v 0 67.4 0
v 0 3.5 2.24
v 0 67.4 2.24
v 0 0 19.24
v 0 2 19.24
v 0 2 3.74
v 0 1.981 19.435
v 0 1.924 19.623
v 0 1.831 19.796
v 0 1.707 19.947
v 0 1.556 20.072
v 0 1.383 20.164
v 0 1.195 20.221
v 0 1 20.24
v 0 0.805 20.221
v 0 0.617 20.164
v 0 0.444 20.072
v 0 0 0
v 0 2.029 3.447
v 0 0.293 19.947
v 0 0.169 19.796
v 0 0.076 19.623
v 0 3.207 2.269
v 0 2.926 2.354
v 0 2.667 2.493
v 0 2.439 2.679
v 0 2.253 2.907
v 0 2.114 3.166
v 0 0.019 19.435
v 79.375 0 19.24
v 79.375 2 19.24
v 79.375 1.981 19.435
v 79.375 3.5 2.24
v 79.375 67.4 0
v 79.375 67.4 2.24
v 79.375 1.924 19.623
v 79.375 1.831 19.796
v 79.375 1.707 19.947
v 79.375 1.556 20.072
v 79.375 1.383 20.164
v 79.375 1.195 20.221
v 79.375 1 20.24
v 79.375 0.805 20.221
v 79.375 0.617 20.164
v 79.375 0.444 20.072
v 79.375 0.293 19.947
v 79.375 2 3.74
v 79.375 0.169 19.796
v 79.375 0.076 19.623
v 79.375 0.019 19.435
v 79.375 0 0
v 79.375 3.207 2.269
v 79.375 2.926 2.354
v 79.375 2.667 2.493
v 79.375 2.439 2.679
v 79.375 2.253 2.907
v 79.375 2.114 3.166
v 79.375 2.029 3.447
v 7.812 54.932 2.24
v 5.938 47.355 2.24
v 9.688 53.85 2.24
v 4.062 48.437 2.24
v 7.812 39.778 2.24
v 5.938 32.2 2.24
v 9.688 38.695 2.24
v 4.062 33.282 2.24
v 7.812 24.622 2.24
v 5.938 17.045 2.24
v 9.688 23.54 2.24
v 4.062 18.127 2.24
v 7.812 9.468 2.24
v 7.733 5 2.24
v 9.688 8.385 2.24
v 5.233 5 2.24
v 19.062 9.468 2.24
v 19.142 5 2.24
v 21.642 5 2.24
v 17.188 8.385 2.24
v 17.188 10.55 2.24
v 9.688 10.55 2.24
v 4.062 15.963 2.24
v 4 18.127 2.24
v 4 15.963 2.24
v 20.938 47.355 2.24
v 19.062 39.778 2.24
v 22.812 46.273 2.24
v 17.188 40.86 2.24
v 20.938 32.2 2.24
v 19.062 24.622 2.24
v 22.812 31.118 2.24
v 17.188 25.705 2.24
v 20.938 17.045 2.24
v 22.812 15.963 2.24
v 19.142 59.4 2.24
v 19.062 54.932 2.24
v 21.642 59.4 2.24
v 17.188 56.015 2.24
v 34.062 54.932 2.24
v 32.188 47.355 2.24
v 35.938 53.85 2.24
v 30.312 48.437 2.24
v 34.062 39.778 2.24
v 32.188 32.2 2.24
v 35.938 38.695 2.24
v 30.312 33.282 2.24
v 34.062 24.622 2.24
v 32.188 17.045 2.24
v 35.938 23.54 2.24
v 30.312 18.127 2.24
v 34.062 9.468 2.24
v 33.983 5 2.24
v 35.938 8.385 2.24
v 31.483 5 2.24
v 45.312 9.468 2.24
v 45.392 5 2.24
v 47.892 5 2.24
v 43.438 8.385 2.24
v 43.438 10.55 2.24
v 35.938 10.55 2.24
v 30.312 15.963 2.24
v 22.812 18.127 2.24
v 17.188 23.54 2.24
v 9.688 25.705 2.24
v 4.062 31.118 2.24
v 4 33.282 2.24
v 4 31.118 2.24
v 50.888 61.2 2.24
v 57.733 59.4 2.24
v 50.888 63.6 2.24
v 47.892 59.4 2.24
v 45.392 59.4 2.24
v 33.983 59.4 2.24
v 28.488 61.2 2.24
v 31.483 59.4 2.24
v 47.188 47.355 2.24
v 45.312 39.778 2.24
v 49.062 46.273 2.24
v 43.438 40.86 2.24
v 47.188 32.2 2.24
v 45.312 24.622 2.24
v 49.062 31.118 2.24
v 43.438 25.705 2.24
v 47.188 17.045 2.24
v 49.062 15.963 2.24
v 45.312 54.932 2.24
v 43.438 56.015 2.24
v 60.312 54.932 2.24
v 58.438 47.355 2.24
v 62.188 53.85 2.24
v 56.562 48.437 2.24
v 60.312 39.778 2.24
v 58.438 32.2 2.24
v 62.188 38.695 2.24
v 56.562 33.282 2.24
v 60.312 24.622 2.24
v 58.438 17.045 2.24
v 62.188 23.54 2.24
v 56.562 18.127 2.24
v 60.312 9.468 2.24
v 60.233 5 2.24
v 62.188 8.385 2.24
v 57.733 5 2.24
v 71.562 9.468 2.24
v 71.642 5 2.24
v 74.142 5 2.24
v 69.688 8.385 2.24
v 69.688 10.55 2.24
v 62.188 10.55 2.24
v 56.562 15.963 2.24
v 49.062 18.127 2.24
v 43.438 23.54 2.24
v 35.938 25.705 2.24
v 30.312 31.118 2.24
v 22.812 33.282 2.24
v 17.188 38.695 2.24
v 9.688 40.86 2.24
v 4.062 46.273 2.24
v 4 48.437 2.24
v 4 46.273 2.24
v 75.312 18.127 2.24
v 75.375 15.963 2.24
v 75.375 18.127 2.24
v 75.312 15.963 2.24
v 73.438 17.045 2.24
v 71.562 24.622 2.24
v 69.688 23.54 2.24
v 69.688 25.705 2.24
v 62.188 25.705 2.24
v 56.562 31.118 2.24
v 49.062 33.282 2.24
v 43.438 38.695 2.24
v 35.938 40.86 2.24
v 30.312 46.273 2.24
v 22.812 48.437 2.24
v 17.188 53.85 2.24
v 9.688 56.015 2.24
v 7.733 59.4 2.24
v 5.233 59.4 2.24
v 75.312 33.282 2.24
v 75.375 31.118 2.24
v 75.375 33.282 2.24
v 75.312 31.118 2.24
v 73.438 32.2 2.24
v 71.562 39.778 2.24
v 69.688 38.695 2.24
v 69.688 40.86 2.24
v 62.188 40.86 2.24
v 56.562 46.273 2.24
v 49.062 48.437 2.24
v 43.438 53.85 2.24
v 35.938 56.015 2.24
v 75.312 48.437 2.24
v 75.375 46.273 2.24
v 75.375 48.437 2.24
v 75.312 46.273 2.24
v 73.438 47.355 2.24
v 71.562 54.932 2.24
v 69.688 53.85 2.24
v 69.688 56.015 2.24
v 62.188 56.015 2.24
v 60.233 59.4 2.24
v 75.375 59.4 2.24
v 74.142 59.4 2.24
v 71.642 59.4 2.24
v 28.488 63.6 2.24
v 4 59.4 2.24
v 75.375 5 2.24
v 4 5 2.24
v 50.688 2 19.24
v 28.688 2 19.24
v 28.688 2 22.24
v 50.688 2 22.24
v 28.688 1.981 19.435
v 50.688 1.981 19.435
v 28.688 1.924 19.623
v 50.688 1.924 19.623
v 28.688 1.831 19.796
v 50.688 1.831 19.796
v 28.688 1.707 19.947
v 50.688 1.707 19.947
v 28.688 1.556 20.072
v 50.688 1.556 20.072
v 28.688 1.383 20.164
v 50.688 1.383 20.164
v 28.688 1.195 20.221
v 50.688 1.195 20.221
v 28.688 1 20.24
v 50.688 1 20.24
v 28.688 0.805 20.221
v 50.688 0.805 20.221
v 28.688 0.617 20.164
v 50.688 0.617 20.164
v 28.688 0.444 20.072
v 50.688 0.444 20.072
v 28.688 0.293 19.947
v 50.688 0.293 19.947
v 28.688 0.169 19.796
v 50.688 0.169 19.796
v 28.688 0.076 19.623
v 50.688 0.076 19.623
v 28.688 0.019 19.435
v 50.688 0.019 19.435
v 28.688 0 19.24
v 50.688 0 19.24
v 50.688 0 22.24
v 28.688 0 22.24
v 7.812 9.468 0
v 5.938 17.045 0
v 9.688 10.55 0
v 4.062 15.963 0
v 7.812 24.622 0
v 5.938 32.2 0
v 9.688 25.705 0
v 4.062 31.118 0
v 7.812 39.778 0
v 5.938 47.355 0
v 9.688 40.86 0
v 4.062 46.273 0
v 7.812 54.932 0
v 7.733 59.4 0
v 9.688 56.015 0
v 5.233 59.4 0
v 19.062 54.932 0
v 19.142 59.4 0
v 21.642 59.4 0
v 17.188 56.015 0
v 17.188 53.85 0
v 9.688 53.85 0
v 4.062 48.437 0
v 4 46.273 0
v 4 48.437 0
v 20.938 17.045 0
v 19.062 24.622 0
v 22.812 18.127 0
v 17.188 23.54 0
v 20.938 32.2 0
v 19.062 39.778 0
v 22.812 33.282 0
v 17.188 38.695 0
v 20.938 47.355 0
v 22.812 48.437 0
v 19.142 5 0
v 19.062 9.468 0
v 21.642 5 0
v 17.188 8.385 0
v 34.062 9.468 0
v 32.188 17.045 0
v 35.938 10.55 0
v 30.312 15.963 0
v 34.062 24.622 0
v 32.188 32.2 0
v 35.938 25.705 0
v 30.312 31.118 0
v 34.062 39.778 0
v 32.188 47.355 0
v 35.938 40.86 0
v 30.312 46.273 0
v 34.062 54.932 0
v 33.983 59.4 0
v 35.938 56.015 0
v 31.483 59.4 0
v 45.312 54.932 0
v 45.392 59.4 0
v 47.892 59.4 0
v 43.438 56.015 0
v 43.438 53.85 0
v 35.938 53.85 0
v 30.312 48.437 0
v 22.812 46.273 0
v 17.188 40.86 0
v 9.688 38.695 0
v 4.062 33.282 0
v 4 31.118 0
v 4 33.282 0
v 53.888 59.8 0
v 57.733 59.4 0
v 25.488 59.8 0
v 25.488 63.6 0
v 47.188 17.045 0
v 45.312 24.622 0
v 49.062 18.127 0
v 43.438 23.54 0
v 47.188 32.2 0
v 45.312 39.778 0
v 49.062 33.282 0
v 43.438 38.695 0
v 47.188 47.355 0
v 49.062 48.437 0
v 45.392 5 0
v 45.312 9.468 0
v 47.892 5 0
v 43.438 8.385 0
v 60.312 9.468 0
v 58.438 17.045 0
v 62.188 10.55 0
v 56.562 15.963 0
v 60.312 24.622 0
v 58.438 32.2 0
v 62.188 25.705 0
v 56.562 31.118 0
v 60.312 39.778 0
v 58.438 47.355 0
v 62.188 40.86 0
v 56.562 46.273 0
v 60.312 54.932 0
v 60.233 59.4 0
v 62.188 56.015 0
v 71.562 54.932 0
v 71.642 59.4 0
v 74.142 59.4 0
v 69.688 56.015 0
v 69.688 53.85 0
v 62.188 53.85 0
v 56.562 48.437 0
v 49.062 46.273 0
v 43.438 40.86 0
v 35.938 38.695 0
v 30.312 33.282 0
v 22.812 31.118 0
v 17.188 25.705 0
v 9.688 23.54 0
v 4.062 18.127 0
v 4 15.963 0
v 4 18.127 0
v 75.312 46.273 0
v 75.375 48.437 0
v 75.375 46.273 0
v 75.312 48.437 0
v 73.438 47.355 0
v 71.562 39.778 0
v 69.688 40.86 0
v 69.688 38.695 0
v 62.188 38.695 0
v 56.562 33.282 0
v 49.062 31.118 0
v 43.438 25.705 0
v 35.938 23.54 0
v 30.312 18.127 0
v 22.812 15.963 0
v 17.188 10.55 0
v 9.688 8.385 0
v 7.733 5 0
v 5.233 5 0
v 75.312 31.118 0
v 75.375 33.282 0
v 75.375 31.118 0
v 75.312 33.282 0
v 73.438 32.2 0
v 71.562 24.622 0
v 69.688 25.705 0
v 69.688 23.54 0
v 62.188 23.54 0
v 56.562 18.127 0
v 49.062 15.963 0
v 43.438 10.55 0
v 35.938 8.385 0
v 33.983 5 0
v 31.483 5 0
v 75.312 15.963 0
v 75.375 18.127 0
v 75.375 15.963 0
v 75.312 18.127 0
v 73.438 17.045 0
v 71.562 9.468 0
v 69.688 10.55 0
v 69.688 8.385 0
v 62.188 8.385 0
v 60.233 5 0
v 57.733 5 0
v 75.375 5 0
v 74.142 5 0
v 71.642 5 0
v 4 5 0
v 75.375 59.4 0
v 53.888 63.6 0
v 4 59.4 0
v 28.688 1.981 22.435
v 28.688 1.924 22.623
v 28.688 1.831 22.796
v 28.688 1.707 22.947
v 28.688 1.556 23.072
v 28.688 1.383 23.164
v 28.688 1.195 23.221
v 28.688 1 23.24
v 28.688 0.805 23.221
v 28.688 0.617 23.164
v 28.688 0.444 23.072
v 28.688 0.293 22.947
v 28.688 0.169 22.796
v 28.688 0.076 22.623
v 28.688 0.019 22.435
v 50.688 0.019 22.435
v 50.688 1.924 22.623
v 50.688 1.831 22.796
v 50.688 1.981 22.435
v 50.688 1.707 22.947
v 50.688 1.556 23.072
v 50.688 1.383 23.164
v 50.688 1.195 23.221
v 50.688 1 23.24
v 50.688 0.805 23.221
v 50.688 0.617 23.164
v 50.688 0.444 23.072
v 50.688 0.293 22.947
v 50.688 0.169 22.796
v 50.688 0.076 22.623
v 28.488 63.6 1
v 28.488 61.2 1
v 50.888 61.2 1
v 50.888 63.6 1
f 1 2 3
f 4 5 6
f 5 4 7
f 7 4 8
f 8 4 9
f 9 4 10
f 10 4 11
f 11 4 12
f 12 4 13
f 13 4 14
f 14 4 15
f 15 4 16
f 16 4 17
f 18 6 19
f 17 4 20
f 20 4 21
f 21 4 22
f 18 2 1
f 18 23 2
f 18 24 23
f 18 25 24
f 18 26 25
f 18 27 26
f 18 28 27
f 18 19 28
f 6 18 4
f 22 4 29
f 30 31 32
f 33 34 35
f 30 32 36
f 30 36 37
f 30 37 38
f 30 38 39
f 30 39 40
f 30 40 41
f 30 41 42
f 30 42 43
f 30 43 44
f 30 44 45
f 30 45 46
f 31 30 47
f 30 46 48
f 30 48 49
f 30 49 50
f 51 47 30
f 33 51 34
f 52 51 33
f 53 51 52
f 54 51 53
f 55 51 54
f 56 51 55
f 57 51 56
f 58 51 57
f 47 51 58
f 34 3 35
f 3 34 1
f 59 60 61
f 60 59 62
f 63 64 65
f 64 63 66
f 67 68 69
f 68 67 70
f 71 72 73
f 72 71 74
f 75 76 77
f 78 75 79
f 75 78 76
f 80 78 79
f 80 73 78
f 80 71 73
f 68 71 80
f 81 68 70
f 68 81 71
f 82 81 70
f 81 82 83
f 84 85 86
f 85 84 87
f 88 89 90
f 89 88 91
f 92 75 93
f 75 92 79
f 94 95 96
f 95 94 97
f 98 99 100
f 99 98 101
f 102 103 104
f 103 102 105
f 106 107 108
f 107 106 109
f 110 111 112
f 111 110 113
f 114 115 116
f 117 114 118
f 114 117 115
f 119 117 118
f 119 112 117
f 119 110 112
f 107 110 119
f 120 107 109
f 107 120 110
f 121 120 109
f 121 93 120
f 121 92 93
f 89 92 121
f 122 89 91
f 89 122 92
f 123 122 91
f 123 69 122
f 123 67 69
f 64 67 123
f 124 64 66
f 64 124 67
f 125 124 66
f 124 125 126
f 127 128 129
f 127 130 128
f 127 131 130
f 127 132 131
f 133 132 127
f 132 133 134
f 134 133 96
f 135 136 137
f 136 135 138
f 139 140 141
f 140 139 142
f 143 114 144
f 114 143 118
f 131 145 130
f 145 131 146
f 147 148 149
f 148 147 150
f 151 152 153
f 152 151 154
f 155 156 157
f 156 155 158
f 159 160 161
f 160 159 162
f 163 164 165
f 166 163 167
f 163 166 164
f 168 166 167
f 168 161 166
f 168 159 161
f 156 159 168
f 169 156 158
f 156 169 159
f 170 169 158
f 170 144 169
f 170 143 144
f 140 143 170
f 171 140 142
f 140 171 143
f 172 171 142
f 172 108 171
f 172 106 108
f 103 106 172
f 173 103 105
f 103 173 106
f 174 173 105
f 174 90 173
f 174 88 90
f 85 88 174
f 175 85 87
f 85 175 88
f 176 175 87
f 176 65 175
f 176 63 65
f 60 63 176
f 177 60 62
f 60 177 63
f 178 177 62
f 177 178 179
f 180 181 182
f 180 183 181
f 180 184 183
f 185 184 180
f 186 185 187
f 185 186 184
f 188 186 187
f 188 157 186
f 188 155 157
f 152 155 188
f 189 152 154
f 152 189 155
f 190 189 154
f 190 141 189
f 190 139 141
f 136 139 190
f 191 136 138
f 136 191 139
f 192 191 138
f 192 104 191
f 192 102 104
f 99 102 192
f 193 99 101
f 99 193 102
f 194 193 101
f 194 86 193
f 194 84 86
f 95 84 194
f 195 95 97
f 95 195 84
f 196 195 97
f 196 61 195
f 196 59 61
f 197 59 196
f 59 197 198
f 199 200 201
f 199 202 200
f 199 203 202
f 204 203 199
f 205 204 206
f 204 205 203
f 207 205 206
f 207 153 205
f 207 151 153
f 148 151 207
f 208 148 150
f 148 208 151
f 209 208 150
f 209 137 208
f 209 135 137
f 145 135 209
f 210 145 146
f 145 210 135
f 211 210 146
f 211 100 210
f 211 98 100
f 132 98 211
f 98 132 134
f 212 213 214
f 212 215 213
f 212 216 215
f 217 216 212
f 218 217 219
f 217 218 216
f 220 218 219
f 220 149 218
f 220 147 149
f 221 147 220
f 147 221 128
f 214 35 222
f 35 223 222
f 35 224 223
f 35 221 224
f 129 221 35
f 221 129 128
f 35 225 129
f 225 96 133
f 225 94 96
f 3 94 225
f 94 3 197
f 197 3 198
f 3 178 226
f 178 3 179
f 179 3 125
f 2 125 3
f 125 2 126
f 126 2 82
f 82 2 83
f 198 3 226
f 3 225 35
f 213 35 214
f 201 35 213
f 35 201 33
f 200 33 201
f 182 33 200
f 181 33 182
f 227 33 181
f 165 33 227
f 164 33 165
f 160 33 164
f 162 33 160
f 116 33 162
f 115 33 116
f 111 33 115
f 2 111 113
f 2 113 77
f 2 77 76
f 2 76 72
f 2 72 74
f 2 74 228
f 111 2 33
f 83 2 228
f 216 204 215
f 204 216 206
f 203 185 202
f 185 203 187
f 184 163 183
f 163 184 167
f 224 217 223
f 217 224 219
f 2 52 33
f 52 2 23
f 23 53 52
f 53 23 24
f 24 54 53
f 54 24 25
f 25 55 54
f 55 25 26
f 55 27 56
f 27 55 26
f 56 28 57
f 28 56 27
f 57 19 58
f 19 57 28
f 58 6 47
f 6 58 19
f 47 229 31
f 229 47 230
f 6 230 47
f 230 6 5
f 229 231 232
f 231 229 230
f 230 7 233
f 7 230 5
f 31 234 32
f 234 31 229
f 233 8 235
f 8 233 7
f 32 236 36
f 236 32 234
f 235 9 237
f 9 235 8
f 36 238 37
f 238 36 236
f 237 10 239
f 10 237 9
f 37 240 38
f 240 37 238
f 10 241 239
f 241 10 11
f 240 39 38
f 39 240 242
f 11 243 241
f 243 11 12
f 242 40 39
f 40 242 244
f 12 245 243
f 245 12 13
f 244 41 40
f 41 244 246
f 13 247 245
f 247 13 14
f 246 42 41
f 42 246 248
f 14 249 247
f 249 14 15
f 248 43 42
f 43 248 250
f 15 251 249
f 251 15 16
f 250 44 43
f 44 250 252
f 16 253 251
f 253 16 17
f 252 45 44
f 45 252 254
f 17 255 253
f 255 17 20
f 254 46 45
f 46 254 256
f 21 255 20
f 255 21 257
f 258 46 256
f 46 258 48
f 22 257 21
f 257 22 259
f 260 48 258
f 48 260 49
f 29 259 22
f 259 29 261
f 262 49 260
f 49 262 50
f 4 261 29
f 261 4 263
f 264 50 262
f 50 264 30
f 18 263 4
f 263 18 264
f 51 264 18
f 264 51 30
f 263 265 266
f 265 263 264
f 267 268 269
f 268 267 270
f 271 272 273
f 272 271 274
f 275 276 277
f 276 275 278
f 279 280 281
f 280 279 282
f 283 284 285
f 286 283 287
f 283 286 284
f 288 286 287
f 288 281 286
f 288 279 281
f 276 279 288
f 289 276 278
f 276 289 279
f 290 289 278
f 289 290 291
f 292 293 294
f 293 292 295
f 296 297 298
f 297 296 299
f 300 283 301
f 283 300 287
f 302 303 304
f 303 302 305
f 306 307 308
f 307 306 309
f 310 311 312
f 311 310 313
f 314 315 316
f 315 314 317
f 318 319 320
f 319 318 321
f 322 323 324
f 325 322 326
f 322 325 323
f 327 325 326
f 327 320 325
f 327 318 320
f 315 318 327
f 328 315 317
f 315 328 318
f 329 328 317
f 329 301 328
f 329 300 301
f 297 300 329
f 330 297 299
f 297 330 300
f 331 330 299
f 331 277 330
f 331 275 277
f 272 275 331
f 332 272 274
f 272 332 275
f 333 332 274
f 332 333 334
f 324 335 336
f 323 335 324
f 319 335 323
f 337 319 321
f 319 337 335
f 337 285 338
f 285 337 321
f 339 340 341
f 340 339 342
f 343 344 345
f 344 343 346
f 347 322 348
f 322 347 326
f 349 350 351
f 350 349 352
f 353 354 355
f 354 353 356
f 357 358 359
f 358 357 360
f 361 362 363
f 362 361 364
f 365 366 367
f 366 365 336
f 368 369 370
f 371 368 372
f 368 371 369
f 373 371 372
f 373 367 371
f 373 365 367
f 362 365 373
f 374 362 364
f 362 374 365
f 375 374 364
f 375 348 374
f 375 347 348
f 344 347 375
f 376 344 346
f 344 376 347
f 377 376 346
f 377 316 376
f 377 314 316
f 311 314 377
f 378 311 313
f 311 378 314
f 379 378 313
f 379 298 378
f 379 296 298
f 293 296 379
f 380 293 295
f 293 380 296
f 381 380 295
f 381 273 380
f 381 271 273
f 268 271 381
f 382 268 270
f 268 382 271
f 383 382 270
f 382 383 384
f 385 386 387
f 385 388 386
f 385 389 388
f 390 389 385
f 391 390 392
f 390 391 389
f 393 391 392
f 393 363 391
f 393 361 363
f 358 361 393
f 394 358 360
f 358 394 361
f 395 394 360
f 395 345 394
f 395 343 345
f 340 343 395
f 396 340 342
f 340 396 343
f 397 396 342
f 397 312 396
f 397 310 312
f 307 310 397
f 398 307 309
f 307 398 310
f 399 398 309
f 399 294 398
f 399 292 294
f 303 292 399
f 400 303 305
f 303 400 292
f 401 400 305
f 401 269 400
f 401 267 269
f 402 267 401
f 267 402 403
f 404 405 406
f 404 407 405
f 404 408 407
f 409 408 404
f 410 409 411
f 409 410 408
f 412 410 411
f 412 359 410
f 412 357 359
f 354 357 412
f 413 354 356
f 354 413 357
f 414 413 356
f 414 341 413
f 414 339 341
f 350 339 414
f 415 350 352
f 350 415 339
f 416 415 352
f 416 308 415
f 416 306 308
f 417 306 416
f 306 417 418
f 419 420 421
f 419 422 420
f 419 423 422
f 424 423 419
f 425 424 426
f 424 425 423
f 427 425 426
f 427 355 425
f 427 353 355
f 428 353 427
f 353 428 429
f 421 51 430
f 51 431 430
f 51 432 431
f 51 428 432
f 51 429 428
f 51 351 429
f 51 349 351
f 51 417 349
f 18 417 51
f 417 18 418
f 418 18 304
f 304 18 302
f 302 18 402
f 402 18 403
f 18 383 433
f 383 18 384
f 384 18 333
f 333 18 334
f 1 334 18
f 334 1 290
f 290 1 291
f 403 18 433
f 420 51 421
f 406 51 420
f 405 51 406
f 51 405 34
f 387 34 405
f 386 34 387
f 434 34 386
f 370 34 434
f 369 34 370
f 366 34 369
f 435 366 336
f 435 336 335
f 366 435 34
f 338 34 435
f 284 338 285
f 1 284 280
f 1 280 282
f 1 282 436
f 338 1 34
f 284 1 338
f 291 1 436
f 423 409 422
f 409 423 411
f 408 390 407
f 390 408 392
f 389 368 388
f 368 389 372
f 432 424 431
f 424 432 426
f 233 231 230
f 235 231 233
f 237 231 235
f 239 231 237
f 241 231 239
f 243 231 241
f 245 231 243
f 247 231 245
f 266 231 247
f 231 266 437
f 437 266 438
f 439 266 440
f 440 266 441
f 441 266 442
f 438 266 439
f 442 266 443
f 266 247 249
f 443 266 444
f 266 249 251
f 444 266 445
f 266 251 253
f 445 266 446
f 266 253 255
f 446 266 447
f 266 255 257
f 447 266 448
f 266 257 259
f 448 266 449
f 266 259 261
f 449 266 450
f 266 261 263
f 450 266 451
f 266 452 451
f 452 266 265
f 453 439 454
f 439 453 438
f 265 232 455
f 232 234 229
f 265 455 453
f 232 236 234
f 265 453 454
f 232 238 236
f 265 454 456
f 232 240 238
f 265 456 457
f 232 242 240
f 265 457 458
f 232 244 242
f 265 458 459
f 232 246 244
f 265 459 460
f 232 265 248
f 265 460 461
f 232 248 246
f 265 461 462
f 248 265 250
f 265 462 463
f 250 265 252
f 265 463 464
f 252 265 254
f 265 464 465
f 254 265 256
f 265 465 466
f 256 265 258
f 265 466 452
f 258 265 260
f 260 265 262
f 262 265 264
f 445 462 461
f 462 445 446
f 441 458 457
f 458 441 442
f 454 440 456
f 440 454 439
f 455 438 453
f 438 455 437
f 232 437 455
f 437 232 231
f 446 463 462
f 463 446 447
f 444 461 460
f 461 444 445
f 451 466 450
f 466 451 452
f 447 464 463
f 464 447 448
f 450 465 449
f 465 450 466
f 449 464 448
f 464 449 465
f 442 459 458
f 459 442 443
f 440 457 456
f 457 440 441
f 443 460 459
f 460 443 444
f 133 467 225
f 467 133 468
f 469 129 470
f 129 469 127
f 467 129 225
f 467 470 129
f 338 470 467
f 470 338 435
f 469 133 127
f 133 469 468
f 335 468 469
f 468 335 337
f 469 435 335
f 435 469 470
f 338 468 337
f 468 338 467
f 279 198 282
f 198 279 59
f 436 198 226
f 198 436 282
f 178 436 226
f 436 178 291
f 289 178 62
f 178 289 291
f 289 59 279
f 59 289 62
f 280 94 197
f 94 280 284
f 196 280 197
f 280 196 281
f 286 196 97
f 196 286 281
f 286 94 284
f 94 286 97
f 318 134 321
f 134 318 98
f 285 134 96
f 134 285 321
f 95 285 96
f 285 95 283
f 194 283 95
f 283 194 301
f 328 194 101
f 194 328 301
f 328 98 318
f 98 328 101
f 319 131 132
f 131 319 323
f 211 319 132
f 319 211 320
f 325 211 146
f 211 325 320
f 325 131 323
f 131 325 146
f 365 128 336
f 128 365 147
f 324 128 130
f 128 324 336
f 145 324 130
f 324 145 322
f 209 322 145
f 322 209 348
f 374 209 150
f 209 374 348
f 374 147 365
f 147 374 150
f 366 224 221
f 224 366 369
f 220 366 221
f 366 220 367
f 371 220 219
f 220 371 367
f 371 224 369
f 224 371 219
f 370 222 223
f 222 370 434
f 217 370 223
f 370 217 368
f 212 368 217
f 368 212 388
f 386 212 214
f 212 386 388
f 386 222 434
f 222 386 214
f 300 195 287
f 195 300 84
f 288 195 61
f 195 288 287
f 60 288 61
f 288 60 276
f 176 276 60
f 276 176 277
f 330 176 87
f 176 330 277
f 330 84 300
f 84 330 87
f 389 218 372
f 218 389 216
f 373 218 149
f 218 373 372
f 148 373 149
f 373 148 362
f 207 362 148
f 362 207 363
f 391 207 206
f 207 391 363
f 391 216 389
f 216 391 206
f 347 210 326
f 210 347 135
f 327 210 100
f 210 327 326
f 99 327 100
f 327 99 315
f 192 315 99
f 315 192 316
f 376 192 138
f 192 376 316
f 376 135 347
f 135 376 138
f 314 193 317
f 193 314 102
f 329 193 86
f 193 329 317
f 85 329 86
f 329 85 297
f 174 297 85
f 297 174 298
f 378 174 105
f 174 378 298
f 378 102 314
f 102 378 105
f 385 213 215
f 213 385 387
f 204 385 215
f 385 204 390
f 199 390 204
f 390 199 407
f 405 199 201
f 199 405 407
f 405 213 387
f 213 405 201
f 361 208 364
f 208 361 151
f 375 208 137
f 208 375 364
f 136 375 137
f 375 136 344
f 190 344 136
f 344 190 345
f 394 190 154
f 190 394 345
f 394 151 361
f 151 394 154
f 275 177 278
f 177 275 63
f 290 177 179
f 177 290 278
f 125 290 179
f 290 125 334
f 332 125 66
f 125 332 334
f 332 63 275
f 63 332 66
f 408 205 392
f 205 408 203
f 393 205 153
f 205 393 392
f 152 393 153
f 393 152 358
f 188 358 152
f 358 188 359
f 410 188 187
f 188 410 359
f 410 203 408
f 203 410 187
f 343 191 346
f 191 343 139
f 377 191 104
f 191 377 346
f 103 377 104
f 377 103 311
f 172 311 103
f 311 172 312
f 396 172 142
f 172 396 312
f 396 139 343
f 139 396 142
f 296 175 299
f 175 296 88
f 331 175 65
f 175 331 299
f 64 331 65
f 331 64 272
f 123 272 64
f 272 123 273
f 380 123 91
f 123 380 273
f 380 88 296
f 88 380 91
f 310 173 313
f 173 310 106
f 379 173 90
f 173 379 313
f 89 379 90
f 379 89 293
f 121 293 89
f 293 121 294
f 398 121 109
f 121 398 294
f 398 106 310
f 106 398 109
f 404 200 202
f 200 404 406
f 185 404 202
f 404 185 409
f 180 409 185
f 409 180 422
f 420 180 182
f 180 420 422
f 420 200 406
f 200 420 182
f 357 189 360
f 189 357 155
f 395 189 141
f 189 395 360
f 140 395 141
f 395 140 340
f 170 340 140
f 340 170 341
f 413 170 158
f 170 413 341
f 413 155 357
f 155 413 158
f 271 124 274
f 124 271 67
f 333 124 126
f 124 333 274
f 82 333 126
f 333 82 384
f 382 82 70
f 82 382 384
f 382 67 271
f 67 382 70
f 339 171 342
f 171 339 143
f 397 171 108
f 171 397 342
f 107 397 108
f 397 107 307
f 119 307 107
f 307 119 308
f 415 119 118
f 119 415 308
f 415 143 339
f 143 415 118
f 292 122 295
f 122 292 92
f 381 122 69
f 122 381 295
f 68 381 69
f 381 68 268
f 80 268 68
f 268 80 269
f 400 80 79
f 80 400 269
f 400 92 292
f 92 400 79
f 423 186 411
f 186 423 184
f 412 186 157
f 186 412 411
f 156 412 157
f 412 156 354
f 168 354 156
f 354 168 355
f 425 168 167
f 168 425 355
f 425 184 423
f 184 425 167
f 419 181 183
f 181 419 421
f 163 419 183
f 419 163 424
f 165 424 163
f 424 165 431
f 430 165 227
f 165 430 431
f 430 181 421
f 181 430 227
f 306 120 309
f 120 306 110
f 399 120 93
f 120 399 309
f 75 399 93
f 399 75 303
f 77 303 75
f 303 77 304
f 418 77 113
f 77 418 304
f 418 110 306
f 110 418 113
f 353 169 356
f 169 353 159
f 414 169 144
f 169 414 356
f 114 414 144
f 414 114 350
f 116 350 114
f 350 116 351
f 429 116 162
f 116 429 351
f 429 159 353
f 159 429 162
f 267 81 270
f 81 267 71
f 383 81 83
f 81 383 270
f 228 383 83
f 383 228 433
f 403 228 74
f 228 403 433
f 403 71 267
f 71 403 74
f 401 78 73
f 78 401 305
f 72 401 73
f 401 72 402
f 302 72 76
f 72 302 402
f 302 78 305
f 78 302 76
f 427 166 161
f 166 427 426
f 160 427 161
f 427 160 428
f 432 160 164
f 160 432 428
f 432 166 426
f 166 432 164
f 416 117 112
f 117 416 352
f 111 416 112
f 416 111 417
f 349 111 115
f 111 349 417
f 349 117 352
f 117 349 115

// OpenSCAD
// Wake flat v2: built on the v6 design. One-piece L riser printed flat, plate on the bed, lip standing up.
// Kept exactly from v6: plate size (65.4 mm deep x width), 2.24 mm plate (2 + 0.24 extra back layers),
//   hex size/gap/borders/grid positions, the small W, and the lip size (2 mm thick, 20 mm deep from the front face).
// New: wall tabs on the lip top that rest by gravity in slots near the free edge of the next plate.
// No ridges, channels or bands.
//
// Axes: x = width, y = plate depth (y=0 is the lip end of the plate, v6's z_bot end), z = up (plate front face up).
// The x axis is mirrored relative to v6's panel coordinates so the part is the same physical part, not a mirror image.

// Extension piece: exactly 3 1/8 in wide, one tab/slot at centre, no W.
width       = 3.125 * 25.4;                // 79.375 mm

// v6 plate: back_height 70.5 - panel_top_trim 1.0 - boss_h 4.1
panel_h  = 65.4;
edge_extra = 2;                           // extra solid border past the v6 plate edge (free-edge side only); hex grid and slot positions unchanged
plate_d  = panel_h + edge_extra;
wall     = 2;                             // lip thickness (v6 `wall`)
back_extra = 0.24;                        // v6: 2 * 0.12 extra layers on the back
plate_t  = wall + back_extra;
bottom_lip_depth = 20;                    // v6 lip depth, measured from the back face's y datum
lip_h    = bottom_lip_depth + back_extra; // lip height from the bed: sticks out 18 mm past the front face, same as v6
fillet_in = 1.5;                          // where the lip meets the plate

// hex grid, same as v6
hex_size   = 15;
hex_gap    = 2.5;
border_x   = 4;
border_top = 6;
band_h     = 5;                           // v6 band_v 2 + ramp_h 3: hex area starts this far from the lip end

// small W, same as v6: one hex at the far corner, max x and max v6-z
small_w_on     = false;
small_w_w      = 0.85;
small_w_h      = 0.62;
small_w_stroke = 2.0;
letter_flip    = true;

// bottom piece only: round the free-edge corner at max x (bottom right) for the case's rounded inner corner
bottom_piece  = false;
corner_cut_r  = 6.35;                     // 1/4 in

// tabs on the lip top, slots in the plate
tab_len     = 22;
tab_h       = 3;                          // tabs stick up past lip_h
tab_clear   = 0.2;                        // slot clearance per side
slot_from_edge = 3;                       // free edge to slot centre line (hex area ends border_top = 6 from the edge)
ramp_depth = 1.0;                         // funnel depth into the plate from the back face, leaves plate_t - ramp_depth straight
ramp_run_y = 1.4;                         // flare on the hex side of each slot only, none on the free-edge side (stops short of the hex area at 1.8 mm)
ramp_run_x = 3.0;                         // flare past each end, gentler lead-in

// shingle step used by the storage case: how far each piece sits along y from the one below when stacked tight
// (the lip wall and its fillet need 3.5 mm, plus 0.1)
stack_step = 3.6;
assert(stack_step >= wall + fillet_in, "stack_step too small to clear the lip wall and fillet");

tab_xs = [width / 2];                     // single tab, centred
left_end  = tab_xs[0] - (tab_len / 2 + tab_clear);   // free stretches either side of the slots, where the text goes
right_beg = tab_xs[0] + (tab_len / 2 + tab_clear);

// engraved logo and version on the front face, in the solid strip along the free edge, either side of the slots
engrave      = false;
brand_text   = "BlueBytes";
version_text = "Bedrock v1";
tag_size     = 3.5;
tag_depth    = 0.7;
tag_font     = "Liberation Sans:style=Bold";

$fn = 32;

function cells(w, h) =
    let (pitch = hex_size + hex_gap, step_x = pitch * 0.75, step_z = pitch * 0.866,
         cx = w / 2, cz = h / 2,
         ncols = ceil(w / (2 * step_x)) + 2, nrows = ceil(h / (2 * step_z)) + 2)
    [for (col = [-ncols : ncols]) for (row = [-nrows : nrows])
        let (parity = ((col % 2) + 2) % 2,
             x = cx + col * step_x,
             z = cz + row * step_z + (parity == 0 ? 0 : step_z / 2))
        [x, z]];

function corner_cell(w, h) =
    let (c = [for (p = cells(w, h)) if (p[0] - hex_size / 2 >= 0 && p[0] + hex_size / 2 <= w && p[1] - hex_size / 2 >= 0 && p[1] + hex_size / 2 <= h) p],
         best = max([for (p = c) p[0] + p[1]]))
    [for (p = c) if (p[0] + p[1] == best) p][0];

module w_shape2d(lw, lh, stroke) {
    f = letter_flip ? -1 : 1;
    pts = [[-lw / 2, f * lh / 2], [-lw / 4, -f * lh / 2], [0, f * lh * 0.15], [lw / 4, -f * lh / 2], [lw / 2, f * lh / 2]];
    for (i = [0 : 3]) hull() {
        translate(pts[i]) circle(d = stroke, $fn = 24);
        translate(pts[i + 1]) circle(d = stroke, $fn = 24);
    }
}

// the v6 hex pattern as a 2D cut; the cell grid is symmetric in x, only the W cell is mirrored
module hex_cut2d(w, h) {
    cc = corner_cell(w, h);
    difference() {
        intersection() {
            for (c = cells(w, h)) translate(c) circle(d = hex_size, $fn = 6);
            square([w, h]);
        }
        if (small_w_on)
            translate([w - cc[0], cc[1]]) w_shape2d(hex_size * small_w_w, hex_size * small_w_h, small_w_stroke);
    }
}

// (y, z) profile of plate + lip + fillet, extruded along x
module body() {
    r = wall / 2;
    rotate([90, 0, 90]) linear_extrude(width) union() {
        square([plate_d, plate_t]);
        square([wall, lip_h - r]);
        translate([r, lip_h - r]) circle(r = r, $fn = 32);       // rounded lip top, as in v6
        difference() {
            translate([wall - 0.01, plate_t - 0.01]) square([fillet_in + 0.01, fillet_in + 0.01]);
            translate([wall + fillet_in, plate_t + fillet_in]) circle(r = fillet_in);
        }
    }
}

module tabs() {
    r = wall / 2;
    z0 = lip_h - r;                       // starts inside the rounded lip top
    for (x = tab_xs)
        translate([x - tab_len / 2, 0, 0]) rotate([90, 0, 90]) linear_extrude(tab_len) union() {
            translate([0, z0]) square([wall, tab_h]);                         // up to where the round starts
            translate([r, lip_h + tab_h - r]) circle(r = r, $fn = 32);        // rounded tab top, same radius as the lip
        }
}

module slots() {
    sw = wall + 2 * tab_clear;
    sl = tab_len + 2 * tab_clear;
    y0 = panel_h - slot_from_edge - sw / 2;
    for (x = tab_xs) {
        translate([x - sl / 2, y0, -1]) cube([sl, sw, plate_t + 2]);
        // lead-in funnel on the back face (z=0, the bed side), the face the tab enters from
        hull() {
            translate([x - sl / 2, y0, ramp_depth - 0.01]) cube([sl, sw, 0.01]);
            translate([x - sl / 2 - ramp_run_x, y0 - ramp_run_y, -0.01]) cube([sl + 2 * ramp_run_x, sw + ramp_run_y, 0.01]);
        }
    }
}

// text is centred on its cap height in the solid strip between the hex area and the free edge
// (cap height of Liberation Sans Bold = 0.954 x size; the text is turned 180 deg, so its up is -y)
cap_h     = 0.954 * tag_size;
strip_mid = ((panel_h - border_top) + plate_d) / 2;
module tag_text(txt, x_pos) {
    translate([x_pos, strip_mid + cap_h / 2, plate_t - tag_depth]) rotate([0, 0, 180])
        linear_extrude(height = tag_depth + 0.5)
            text(txt, size = tag_size, font = tag_font, halign = "center", valign = "baseline");
}

module corner_cutter() {
    translate([width - corner_cut_r, plate_d - corner_cut_r, -1]) linear_extrude(plate_t + 2)
        difference() {
            square([corner_cut_r + 1, corner_cut_r + 1]);
            circle(r = corner_cut_r, $fn = 64);
        }
}

module riser() {
    difference() {
        union() { body(); tabs(); }
        translate([border_x, band_h, -1]) linear_extrude(plate_t + 2)
            hex_cut2d(width - 2 * border_x, panel_h - band_h - border_top);
        slots();
        if (bottom_piece) corner_cutter();
        if (engrave) {
            tag_text(brand_text, (border_x + left_end) / 2);
            tag_text(version_text, (right_beg + width - border_x) / 2);
        }
    }
}

// two boxes over the engraved text areas, in the riser's own coordinates, to load into the slicer as modifiers
// (ironing is a slicer setting; this just marks where). "riser" | "iron_modifiers"
output = "riser";
module iron_boxes() {
    for (x0 = [border_x + 1, right_beg + 1])
        translate([x0, panel_h - border_top, 0])
            cube([left_end - border_x - 2, plate_d - (panel_h - border_top), plate_t + 0.7]);
}

render_riser = true;
if (render_riser) { if (output == "iron_modifiers") iron_boxes(); else riser(); }
